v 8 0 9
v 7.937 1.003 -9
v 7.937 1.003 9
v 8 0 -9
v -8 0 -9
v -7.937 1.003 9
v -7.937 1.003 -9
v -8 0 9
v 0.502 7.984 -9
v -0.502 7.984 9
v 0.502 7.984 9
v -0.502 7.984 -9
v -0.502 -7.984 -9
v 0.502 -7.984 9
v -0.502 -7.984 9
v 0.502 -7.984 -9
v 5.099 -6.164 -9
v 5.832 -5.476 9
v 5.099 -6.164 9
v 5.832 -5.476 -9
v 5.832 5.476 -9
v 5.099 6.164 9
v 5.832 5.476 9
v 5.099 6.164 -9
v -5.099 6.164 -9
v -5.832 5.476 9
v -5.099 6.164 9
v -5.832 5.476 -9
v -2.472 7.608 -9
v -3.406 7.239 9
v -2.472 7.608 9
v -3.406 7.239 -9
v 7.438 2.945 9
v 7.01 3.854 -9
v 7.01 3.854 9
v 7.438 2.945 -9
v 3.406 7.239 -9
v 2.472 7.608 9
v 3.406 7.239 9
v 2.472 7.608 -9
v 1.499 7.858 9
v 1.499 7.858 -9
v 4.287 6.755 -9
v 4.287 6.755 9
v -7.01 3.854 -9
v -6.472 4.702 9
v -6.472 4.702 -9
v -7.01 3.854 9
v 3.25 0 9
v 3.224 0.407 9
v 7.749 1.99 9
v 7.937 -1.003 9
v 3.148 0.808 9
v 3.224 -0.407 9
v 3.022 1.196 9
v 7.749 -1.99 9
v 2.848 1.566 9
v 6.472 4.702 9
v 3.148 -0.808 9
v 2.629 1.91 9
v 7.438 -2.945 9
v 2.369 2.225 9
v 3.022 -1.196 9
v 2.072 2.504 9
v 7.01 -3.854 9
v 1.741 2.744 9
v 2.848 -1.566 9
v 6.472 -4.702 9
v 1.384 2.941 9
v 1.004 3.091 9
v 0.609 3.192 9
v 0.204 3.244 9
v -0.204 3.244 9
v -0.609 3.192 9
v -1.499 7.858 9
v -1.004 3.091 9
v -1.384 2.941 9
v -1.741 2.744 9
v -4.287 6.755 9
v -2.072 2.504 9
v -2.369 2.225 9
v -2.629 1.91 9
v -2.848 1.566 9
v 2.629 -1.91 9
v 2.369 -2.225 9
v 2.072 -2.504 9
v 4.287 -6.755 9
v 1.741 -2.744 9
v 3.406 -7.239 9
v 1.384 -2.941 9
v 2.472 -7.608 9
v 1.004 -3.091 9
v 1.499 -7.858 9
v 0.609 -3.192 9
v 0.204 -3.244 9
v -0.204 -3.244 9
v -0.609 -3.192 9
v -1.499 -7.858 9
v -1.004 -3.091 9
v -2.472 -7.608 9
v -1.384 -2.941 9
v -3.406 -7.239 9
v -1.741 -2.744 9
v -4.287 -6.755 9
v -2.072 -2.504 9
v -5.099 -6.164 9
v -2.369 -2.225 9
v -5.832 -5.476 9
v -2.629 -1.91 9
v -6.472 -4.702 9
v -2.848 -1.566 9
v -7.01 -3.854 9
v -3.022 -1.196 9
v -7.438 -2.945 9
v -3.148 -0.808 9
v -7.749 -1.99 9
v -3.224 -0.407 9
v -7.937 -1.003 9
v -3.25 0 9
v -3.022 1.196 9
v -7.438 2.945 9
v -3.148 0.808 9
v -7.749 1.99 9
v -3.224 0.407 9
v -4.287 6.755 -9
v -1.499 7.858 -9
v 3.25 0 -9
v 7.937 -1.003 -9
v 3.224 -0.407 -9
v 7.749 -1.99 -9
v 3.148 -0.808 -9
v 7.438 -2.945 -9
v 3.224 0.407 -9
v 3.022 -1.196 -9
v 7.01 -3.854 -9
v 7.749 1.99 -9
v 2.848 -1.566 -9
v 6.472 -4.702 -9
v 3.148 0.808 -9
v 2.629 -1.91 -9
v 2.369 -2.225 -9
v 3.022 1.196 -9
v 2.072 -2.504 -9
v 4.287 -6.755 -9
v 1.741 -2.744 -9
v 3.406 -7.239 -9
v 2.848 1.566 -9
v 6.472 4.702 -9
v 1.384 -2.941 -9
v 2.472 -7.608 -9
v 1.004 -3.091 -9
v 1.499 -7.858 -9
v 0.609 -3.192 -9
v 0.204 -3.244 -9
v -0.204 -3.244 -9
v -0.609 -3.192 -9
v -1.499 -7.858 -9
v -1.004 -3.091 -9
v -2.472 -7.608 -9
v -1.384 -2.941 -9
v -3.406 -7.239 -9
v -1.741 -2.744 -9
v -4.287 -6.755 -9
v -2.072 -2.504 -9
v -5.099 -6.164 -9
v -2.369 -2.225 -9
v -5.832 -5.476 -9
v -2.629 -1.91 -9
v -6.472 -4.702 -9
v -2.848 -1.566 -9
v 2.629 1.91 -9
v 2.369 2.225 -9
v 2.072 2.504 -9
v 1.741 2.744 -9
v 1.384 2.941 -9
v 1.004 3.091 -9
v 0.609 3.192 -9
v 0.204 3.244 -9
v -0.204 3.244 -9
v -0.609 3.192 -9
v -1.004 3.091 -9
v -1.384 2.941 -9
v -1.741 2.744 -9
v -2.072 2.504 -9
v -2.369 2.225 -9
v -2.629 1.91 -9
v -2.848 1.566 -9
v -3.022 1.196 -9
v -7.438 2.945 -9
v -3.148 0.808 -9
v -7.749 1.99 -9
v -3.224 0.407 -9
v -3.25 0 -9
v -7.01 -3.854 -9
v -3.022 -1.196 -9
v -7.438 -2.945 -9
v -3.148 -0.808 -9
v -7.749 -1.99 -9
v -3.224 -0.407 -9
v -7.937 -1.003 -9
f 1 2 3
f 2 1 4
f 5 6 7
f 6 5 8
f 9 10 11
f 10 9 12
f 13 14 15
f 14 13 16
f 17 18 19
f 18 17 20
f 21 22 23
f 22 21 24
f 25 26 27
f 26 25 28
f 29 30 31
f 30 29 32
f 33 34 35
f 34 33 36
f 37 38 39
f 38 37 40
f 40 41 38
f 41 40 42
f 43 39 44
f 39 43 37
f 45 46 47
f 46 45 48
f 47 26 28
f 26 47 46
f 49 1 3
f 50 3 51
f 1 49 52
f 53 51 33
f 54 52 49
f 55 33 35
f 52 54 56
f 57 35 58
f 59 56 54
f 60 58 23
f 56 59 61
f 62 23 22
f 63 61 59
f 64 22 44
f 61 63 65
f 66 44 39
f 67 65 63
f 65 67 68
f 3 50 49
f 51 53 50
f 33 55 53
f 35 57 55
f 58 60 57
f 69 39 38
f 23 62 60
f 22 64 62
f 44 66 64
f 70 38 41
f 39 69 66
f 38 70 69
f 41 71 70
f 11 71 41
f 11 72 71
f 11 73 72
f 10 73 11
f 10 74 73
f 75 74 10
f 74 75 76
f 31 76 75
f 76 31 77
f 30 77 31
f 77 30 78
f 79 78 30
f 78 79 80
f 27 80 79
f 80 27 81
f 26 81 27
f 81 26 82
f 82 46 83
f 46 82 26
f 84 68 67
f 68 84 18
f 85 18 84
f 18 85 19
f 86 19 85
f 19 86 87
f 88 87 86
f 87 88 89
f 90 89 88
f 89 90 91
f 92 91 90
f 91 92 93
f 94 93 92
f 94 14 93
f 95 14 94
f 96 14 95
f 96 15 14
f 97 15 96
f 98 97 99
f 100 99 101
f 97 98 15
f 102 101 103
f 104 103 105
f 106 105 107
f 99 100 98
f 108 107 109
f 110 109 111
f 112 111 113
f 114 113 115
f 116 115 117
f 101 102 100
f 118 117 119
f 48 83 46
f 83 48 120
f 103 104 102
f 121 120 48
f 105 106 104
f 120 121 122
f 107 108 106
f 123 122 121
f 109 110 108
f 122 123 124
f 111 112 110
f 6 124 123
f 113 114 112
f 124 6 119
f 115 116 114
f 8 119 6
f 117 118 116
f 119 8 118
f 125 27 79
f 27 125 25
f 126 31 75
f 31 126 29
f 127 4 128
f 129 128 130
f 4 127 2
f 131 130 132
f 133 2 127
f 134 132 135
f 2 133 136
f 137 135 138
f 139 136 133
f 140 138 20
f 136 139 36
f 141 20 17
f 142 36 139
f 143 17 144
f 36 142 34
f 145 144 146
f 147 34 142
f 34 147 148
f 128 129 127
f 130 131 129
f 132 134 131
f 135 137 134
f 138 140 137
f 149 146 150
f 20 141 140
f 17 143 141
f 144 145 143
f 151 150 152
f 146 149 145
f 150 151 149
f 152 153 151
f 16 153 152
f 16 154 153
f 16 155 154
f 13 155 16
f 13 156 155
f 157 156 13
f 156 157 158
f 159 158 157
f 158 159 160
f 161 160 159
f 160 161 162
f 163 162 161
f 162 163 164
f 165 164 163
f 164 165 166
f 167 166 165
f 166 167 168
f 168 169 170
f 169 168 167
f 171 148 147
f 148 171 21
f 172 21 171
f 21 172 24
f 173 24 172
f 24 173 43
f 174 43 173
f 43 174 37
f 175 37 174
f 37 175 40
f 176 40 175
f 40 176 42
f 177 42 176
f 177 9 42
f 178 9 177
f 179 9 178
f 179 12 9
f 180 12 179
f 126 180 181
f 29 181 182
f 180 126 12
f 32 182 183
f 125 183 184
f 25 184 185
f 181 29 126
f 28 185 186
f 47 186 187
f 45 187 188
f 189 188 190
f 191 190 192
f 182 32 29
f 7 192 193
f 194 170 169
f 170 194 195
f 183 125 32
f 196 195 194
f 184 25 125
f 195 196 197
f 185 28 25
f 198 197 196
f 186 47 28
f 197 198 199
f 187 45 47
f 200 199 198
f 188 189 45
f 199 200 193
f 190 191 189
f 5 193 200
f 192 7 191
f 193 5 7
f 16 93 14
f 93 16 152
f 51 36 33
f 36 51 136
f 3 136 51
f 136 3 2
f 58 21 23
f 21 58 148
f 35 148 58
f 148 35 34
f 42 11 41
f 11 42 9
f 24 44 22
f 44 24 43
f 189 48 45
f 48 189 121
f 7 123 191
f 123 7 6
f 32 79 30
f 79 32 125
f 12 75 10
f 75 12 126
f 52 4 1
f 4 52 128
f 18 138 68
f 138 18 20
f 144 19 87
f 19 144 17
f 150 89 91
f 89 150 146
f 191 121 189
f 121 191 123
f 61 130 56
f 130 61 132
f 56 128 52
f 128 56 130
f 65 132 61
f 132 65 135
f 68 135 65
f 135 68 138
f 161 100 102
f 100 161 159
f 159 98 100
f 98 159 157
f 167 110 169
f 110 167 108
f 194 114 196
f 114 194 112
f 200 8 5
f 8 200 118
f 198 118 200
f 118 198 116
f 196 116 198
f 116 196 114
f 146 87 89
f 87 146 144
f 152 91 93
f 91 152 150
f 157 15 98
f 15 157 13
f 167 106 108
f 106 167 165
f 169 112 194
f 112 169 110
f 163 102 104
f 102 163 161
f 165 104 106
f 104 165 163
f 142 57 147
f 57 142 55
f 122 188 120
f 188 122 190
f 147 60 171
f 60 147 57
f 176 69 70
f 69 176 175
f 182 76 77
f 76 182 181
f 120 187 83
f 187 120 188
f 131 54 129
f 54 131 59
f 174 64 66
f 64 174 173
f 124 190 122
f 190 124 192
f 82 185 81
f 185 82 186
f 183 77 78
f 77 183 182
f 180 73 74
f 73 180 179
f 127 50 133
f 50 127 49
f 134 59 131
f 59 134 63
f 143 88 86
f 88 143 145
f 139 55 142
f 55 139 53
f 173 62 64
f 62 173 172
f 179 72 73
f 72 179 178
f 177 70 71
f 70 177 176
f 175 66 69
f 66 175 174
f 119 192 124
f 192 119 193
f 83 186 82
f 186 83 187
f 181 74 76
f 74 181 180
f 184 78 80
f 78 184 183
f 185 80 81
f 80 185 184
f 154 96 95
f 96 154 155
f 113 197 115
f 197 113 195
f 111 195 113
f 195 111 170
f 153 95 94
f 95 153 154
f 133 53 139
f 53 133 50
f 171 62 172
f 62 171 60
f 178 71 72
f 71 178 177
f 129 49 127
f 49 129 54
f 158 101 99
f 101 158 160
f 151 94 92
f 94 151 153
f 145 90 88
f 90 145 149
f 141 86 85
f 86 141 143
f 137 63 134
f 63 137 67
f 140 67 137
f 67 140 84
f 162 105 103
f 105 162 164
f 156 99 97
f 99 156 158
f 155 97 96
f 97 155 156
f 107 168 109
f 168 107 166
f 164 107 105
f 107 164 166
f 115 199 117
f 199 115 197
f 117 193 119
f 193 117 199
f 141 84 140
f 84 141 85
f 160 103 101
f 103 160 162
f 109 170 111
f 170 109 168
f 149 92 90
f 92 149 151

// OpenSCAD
$fn = 50;


difference() {
	union() {
		translate(v = [0, 0, -9.0000000000]) {
			cylinder(h = 18, r = 8.0000000000);
		}
	}
	union() {
		translate(v = [0, 0, -100.0000000000]) {
			cylinder(h = 200, r = 3.2500000000);
		}
	}
}
